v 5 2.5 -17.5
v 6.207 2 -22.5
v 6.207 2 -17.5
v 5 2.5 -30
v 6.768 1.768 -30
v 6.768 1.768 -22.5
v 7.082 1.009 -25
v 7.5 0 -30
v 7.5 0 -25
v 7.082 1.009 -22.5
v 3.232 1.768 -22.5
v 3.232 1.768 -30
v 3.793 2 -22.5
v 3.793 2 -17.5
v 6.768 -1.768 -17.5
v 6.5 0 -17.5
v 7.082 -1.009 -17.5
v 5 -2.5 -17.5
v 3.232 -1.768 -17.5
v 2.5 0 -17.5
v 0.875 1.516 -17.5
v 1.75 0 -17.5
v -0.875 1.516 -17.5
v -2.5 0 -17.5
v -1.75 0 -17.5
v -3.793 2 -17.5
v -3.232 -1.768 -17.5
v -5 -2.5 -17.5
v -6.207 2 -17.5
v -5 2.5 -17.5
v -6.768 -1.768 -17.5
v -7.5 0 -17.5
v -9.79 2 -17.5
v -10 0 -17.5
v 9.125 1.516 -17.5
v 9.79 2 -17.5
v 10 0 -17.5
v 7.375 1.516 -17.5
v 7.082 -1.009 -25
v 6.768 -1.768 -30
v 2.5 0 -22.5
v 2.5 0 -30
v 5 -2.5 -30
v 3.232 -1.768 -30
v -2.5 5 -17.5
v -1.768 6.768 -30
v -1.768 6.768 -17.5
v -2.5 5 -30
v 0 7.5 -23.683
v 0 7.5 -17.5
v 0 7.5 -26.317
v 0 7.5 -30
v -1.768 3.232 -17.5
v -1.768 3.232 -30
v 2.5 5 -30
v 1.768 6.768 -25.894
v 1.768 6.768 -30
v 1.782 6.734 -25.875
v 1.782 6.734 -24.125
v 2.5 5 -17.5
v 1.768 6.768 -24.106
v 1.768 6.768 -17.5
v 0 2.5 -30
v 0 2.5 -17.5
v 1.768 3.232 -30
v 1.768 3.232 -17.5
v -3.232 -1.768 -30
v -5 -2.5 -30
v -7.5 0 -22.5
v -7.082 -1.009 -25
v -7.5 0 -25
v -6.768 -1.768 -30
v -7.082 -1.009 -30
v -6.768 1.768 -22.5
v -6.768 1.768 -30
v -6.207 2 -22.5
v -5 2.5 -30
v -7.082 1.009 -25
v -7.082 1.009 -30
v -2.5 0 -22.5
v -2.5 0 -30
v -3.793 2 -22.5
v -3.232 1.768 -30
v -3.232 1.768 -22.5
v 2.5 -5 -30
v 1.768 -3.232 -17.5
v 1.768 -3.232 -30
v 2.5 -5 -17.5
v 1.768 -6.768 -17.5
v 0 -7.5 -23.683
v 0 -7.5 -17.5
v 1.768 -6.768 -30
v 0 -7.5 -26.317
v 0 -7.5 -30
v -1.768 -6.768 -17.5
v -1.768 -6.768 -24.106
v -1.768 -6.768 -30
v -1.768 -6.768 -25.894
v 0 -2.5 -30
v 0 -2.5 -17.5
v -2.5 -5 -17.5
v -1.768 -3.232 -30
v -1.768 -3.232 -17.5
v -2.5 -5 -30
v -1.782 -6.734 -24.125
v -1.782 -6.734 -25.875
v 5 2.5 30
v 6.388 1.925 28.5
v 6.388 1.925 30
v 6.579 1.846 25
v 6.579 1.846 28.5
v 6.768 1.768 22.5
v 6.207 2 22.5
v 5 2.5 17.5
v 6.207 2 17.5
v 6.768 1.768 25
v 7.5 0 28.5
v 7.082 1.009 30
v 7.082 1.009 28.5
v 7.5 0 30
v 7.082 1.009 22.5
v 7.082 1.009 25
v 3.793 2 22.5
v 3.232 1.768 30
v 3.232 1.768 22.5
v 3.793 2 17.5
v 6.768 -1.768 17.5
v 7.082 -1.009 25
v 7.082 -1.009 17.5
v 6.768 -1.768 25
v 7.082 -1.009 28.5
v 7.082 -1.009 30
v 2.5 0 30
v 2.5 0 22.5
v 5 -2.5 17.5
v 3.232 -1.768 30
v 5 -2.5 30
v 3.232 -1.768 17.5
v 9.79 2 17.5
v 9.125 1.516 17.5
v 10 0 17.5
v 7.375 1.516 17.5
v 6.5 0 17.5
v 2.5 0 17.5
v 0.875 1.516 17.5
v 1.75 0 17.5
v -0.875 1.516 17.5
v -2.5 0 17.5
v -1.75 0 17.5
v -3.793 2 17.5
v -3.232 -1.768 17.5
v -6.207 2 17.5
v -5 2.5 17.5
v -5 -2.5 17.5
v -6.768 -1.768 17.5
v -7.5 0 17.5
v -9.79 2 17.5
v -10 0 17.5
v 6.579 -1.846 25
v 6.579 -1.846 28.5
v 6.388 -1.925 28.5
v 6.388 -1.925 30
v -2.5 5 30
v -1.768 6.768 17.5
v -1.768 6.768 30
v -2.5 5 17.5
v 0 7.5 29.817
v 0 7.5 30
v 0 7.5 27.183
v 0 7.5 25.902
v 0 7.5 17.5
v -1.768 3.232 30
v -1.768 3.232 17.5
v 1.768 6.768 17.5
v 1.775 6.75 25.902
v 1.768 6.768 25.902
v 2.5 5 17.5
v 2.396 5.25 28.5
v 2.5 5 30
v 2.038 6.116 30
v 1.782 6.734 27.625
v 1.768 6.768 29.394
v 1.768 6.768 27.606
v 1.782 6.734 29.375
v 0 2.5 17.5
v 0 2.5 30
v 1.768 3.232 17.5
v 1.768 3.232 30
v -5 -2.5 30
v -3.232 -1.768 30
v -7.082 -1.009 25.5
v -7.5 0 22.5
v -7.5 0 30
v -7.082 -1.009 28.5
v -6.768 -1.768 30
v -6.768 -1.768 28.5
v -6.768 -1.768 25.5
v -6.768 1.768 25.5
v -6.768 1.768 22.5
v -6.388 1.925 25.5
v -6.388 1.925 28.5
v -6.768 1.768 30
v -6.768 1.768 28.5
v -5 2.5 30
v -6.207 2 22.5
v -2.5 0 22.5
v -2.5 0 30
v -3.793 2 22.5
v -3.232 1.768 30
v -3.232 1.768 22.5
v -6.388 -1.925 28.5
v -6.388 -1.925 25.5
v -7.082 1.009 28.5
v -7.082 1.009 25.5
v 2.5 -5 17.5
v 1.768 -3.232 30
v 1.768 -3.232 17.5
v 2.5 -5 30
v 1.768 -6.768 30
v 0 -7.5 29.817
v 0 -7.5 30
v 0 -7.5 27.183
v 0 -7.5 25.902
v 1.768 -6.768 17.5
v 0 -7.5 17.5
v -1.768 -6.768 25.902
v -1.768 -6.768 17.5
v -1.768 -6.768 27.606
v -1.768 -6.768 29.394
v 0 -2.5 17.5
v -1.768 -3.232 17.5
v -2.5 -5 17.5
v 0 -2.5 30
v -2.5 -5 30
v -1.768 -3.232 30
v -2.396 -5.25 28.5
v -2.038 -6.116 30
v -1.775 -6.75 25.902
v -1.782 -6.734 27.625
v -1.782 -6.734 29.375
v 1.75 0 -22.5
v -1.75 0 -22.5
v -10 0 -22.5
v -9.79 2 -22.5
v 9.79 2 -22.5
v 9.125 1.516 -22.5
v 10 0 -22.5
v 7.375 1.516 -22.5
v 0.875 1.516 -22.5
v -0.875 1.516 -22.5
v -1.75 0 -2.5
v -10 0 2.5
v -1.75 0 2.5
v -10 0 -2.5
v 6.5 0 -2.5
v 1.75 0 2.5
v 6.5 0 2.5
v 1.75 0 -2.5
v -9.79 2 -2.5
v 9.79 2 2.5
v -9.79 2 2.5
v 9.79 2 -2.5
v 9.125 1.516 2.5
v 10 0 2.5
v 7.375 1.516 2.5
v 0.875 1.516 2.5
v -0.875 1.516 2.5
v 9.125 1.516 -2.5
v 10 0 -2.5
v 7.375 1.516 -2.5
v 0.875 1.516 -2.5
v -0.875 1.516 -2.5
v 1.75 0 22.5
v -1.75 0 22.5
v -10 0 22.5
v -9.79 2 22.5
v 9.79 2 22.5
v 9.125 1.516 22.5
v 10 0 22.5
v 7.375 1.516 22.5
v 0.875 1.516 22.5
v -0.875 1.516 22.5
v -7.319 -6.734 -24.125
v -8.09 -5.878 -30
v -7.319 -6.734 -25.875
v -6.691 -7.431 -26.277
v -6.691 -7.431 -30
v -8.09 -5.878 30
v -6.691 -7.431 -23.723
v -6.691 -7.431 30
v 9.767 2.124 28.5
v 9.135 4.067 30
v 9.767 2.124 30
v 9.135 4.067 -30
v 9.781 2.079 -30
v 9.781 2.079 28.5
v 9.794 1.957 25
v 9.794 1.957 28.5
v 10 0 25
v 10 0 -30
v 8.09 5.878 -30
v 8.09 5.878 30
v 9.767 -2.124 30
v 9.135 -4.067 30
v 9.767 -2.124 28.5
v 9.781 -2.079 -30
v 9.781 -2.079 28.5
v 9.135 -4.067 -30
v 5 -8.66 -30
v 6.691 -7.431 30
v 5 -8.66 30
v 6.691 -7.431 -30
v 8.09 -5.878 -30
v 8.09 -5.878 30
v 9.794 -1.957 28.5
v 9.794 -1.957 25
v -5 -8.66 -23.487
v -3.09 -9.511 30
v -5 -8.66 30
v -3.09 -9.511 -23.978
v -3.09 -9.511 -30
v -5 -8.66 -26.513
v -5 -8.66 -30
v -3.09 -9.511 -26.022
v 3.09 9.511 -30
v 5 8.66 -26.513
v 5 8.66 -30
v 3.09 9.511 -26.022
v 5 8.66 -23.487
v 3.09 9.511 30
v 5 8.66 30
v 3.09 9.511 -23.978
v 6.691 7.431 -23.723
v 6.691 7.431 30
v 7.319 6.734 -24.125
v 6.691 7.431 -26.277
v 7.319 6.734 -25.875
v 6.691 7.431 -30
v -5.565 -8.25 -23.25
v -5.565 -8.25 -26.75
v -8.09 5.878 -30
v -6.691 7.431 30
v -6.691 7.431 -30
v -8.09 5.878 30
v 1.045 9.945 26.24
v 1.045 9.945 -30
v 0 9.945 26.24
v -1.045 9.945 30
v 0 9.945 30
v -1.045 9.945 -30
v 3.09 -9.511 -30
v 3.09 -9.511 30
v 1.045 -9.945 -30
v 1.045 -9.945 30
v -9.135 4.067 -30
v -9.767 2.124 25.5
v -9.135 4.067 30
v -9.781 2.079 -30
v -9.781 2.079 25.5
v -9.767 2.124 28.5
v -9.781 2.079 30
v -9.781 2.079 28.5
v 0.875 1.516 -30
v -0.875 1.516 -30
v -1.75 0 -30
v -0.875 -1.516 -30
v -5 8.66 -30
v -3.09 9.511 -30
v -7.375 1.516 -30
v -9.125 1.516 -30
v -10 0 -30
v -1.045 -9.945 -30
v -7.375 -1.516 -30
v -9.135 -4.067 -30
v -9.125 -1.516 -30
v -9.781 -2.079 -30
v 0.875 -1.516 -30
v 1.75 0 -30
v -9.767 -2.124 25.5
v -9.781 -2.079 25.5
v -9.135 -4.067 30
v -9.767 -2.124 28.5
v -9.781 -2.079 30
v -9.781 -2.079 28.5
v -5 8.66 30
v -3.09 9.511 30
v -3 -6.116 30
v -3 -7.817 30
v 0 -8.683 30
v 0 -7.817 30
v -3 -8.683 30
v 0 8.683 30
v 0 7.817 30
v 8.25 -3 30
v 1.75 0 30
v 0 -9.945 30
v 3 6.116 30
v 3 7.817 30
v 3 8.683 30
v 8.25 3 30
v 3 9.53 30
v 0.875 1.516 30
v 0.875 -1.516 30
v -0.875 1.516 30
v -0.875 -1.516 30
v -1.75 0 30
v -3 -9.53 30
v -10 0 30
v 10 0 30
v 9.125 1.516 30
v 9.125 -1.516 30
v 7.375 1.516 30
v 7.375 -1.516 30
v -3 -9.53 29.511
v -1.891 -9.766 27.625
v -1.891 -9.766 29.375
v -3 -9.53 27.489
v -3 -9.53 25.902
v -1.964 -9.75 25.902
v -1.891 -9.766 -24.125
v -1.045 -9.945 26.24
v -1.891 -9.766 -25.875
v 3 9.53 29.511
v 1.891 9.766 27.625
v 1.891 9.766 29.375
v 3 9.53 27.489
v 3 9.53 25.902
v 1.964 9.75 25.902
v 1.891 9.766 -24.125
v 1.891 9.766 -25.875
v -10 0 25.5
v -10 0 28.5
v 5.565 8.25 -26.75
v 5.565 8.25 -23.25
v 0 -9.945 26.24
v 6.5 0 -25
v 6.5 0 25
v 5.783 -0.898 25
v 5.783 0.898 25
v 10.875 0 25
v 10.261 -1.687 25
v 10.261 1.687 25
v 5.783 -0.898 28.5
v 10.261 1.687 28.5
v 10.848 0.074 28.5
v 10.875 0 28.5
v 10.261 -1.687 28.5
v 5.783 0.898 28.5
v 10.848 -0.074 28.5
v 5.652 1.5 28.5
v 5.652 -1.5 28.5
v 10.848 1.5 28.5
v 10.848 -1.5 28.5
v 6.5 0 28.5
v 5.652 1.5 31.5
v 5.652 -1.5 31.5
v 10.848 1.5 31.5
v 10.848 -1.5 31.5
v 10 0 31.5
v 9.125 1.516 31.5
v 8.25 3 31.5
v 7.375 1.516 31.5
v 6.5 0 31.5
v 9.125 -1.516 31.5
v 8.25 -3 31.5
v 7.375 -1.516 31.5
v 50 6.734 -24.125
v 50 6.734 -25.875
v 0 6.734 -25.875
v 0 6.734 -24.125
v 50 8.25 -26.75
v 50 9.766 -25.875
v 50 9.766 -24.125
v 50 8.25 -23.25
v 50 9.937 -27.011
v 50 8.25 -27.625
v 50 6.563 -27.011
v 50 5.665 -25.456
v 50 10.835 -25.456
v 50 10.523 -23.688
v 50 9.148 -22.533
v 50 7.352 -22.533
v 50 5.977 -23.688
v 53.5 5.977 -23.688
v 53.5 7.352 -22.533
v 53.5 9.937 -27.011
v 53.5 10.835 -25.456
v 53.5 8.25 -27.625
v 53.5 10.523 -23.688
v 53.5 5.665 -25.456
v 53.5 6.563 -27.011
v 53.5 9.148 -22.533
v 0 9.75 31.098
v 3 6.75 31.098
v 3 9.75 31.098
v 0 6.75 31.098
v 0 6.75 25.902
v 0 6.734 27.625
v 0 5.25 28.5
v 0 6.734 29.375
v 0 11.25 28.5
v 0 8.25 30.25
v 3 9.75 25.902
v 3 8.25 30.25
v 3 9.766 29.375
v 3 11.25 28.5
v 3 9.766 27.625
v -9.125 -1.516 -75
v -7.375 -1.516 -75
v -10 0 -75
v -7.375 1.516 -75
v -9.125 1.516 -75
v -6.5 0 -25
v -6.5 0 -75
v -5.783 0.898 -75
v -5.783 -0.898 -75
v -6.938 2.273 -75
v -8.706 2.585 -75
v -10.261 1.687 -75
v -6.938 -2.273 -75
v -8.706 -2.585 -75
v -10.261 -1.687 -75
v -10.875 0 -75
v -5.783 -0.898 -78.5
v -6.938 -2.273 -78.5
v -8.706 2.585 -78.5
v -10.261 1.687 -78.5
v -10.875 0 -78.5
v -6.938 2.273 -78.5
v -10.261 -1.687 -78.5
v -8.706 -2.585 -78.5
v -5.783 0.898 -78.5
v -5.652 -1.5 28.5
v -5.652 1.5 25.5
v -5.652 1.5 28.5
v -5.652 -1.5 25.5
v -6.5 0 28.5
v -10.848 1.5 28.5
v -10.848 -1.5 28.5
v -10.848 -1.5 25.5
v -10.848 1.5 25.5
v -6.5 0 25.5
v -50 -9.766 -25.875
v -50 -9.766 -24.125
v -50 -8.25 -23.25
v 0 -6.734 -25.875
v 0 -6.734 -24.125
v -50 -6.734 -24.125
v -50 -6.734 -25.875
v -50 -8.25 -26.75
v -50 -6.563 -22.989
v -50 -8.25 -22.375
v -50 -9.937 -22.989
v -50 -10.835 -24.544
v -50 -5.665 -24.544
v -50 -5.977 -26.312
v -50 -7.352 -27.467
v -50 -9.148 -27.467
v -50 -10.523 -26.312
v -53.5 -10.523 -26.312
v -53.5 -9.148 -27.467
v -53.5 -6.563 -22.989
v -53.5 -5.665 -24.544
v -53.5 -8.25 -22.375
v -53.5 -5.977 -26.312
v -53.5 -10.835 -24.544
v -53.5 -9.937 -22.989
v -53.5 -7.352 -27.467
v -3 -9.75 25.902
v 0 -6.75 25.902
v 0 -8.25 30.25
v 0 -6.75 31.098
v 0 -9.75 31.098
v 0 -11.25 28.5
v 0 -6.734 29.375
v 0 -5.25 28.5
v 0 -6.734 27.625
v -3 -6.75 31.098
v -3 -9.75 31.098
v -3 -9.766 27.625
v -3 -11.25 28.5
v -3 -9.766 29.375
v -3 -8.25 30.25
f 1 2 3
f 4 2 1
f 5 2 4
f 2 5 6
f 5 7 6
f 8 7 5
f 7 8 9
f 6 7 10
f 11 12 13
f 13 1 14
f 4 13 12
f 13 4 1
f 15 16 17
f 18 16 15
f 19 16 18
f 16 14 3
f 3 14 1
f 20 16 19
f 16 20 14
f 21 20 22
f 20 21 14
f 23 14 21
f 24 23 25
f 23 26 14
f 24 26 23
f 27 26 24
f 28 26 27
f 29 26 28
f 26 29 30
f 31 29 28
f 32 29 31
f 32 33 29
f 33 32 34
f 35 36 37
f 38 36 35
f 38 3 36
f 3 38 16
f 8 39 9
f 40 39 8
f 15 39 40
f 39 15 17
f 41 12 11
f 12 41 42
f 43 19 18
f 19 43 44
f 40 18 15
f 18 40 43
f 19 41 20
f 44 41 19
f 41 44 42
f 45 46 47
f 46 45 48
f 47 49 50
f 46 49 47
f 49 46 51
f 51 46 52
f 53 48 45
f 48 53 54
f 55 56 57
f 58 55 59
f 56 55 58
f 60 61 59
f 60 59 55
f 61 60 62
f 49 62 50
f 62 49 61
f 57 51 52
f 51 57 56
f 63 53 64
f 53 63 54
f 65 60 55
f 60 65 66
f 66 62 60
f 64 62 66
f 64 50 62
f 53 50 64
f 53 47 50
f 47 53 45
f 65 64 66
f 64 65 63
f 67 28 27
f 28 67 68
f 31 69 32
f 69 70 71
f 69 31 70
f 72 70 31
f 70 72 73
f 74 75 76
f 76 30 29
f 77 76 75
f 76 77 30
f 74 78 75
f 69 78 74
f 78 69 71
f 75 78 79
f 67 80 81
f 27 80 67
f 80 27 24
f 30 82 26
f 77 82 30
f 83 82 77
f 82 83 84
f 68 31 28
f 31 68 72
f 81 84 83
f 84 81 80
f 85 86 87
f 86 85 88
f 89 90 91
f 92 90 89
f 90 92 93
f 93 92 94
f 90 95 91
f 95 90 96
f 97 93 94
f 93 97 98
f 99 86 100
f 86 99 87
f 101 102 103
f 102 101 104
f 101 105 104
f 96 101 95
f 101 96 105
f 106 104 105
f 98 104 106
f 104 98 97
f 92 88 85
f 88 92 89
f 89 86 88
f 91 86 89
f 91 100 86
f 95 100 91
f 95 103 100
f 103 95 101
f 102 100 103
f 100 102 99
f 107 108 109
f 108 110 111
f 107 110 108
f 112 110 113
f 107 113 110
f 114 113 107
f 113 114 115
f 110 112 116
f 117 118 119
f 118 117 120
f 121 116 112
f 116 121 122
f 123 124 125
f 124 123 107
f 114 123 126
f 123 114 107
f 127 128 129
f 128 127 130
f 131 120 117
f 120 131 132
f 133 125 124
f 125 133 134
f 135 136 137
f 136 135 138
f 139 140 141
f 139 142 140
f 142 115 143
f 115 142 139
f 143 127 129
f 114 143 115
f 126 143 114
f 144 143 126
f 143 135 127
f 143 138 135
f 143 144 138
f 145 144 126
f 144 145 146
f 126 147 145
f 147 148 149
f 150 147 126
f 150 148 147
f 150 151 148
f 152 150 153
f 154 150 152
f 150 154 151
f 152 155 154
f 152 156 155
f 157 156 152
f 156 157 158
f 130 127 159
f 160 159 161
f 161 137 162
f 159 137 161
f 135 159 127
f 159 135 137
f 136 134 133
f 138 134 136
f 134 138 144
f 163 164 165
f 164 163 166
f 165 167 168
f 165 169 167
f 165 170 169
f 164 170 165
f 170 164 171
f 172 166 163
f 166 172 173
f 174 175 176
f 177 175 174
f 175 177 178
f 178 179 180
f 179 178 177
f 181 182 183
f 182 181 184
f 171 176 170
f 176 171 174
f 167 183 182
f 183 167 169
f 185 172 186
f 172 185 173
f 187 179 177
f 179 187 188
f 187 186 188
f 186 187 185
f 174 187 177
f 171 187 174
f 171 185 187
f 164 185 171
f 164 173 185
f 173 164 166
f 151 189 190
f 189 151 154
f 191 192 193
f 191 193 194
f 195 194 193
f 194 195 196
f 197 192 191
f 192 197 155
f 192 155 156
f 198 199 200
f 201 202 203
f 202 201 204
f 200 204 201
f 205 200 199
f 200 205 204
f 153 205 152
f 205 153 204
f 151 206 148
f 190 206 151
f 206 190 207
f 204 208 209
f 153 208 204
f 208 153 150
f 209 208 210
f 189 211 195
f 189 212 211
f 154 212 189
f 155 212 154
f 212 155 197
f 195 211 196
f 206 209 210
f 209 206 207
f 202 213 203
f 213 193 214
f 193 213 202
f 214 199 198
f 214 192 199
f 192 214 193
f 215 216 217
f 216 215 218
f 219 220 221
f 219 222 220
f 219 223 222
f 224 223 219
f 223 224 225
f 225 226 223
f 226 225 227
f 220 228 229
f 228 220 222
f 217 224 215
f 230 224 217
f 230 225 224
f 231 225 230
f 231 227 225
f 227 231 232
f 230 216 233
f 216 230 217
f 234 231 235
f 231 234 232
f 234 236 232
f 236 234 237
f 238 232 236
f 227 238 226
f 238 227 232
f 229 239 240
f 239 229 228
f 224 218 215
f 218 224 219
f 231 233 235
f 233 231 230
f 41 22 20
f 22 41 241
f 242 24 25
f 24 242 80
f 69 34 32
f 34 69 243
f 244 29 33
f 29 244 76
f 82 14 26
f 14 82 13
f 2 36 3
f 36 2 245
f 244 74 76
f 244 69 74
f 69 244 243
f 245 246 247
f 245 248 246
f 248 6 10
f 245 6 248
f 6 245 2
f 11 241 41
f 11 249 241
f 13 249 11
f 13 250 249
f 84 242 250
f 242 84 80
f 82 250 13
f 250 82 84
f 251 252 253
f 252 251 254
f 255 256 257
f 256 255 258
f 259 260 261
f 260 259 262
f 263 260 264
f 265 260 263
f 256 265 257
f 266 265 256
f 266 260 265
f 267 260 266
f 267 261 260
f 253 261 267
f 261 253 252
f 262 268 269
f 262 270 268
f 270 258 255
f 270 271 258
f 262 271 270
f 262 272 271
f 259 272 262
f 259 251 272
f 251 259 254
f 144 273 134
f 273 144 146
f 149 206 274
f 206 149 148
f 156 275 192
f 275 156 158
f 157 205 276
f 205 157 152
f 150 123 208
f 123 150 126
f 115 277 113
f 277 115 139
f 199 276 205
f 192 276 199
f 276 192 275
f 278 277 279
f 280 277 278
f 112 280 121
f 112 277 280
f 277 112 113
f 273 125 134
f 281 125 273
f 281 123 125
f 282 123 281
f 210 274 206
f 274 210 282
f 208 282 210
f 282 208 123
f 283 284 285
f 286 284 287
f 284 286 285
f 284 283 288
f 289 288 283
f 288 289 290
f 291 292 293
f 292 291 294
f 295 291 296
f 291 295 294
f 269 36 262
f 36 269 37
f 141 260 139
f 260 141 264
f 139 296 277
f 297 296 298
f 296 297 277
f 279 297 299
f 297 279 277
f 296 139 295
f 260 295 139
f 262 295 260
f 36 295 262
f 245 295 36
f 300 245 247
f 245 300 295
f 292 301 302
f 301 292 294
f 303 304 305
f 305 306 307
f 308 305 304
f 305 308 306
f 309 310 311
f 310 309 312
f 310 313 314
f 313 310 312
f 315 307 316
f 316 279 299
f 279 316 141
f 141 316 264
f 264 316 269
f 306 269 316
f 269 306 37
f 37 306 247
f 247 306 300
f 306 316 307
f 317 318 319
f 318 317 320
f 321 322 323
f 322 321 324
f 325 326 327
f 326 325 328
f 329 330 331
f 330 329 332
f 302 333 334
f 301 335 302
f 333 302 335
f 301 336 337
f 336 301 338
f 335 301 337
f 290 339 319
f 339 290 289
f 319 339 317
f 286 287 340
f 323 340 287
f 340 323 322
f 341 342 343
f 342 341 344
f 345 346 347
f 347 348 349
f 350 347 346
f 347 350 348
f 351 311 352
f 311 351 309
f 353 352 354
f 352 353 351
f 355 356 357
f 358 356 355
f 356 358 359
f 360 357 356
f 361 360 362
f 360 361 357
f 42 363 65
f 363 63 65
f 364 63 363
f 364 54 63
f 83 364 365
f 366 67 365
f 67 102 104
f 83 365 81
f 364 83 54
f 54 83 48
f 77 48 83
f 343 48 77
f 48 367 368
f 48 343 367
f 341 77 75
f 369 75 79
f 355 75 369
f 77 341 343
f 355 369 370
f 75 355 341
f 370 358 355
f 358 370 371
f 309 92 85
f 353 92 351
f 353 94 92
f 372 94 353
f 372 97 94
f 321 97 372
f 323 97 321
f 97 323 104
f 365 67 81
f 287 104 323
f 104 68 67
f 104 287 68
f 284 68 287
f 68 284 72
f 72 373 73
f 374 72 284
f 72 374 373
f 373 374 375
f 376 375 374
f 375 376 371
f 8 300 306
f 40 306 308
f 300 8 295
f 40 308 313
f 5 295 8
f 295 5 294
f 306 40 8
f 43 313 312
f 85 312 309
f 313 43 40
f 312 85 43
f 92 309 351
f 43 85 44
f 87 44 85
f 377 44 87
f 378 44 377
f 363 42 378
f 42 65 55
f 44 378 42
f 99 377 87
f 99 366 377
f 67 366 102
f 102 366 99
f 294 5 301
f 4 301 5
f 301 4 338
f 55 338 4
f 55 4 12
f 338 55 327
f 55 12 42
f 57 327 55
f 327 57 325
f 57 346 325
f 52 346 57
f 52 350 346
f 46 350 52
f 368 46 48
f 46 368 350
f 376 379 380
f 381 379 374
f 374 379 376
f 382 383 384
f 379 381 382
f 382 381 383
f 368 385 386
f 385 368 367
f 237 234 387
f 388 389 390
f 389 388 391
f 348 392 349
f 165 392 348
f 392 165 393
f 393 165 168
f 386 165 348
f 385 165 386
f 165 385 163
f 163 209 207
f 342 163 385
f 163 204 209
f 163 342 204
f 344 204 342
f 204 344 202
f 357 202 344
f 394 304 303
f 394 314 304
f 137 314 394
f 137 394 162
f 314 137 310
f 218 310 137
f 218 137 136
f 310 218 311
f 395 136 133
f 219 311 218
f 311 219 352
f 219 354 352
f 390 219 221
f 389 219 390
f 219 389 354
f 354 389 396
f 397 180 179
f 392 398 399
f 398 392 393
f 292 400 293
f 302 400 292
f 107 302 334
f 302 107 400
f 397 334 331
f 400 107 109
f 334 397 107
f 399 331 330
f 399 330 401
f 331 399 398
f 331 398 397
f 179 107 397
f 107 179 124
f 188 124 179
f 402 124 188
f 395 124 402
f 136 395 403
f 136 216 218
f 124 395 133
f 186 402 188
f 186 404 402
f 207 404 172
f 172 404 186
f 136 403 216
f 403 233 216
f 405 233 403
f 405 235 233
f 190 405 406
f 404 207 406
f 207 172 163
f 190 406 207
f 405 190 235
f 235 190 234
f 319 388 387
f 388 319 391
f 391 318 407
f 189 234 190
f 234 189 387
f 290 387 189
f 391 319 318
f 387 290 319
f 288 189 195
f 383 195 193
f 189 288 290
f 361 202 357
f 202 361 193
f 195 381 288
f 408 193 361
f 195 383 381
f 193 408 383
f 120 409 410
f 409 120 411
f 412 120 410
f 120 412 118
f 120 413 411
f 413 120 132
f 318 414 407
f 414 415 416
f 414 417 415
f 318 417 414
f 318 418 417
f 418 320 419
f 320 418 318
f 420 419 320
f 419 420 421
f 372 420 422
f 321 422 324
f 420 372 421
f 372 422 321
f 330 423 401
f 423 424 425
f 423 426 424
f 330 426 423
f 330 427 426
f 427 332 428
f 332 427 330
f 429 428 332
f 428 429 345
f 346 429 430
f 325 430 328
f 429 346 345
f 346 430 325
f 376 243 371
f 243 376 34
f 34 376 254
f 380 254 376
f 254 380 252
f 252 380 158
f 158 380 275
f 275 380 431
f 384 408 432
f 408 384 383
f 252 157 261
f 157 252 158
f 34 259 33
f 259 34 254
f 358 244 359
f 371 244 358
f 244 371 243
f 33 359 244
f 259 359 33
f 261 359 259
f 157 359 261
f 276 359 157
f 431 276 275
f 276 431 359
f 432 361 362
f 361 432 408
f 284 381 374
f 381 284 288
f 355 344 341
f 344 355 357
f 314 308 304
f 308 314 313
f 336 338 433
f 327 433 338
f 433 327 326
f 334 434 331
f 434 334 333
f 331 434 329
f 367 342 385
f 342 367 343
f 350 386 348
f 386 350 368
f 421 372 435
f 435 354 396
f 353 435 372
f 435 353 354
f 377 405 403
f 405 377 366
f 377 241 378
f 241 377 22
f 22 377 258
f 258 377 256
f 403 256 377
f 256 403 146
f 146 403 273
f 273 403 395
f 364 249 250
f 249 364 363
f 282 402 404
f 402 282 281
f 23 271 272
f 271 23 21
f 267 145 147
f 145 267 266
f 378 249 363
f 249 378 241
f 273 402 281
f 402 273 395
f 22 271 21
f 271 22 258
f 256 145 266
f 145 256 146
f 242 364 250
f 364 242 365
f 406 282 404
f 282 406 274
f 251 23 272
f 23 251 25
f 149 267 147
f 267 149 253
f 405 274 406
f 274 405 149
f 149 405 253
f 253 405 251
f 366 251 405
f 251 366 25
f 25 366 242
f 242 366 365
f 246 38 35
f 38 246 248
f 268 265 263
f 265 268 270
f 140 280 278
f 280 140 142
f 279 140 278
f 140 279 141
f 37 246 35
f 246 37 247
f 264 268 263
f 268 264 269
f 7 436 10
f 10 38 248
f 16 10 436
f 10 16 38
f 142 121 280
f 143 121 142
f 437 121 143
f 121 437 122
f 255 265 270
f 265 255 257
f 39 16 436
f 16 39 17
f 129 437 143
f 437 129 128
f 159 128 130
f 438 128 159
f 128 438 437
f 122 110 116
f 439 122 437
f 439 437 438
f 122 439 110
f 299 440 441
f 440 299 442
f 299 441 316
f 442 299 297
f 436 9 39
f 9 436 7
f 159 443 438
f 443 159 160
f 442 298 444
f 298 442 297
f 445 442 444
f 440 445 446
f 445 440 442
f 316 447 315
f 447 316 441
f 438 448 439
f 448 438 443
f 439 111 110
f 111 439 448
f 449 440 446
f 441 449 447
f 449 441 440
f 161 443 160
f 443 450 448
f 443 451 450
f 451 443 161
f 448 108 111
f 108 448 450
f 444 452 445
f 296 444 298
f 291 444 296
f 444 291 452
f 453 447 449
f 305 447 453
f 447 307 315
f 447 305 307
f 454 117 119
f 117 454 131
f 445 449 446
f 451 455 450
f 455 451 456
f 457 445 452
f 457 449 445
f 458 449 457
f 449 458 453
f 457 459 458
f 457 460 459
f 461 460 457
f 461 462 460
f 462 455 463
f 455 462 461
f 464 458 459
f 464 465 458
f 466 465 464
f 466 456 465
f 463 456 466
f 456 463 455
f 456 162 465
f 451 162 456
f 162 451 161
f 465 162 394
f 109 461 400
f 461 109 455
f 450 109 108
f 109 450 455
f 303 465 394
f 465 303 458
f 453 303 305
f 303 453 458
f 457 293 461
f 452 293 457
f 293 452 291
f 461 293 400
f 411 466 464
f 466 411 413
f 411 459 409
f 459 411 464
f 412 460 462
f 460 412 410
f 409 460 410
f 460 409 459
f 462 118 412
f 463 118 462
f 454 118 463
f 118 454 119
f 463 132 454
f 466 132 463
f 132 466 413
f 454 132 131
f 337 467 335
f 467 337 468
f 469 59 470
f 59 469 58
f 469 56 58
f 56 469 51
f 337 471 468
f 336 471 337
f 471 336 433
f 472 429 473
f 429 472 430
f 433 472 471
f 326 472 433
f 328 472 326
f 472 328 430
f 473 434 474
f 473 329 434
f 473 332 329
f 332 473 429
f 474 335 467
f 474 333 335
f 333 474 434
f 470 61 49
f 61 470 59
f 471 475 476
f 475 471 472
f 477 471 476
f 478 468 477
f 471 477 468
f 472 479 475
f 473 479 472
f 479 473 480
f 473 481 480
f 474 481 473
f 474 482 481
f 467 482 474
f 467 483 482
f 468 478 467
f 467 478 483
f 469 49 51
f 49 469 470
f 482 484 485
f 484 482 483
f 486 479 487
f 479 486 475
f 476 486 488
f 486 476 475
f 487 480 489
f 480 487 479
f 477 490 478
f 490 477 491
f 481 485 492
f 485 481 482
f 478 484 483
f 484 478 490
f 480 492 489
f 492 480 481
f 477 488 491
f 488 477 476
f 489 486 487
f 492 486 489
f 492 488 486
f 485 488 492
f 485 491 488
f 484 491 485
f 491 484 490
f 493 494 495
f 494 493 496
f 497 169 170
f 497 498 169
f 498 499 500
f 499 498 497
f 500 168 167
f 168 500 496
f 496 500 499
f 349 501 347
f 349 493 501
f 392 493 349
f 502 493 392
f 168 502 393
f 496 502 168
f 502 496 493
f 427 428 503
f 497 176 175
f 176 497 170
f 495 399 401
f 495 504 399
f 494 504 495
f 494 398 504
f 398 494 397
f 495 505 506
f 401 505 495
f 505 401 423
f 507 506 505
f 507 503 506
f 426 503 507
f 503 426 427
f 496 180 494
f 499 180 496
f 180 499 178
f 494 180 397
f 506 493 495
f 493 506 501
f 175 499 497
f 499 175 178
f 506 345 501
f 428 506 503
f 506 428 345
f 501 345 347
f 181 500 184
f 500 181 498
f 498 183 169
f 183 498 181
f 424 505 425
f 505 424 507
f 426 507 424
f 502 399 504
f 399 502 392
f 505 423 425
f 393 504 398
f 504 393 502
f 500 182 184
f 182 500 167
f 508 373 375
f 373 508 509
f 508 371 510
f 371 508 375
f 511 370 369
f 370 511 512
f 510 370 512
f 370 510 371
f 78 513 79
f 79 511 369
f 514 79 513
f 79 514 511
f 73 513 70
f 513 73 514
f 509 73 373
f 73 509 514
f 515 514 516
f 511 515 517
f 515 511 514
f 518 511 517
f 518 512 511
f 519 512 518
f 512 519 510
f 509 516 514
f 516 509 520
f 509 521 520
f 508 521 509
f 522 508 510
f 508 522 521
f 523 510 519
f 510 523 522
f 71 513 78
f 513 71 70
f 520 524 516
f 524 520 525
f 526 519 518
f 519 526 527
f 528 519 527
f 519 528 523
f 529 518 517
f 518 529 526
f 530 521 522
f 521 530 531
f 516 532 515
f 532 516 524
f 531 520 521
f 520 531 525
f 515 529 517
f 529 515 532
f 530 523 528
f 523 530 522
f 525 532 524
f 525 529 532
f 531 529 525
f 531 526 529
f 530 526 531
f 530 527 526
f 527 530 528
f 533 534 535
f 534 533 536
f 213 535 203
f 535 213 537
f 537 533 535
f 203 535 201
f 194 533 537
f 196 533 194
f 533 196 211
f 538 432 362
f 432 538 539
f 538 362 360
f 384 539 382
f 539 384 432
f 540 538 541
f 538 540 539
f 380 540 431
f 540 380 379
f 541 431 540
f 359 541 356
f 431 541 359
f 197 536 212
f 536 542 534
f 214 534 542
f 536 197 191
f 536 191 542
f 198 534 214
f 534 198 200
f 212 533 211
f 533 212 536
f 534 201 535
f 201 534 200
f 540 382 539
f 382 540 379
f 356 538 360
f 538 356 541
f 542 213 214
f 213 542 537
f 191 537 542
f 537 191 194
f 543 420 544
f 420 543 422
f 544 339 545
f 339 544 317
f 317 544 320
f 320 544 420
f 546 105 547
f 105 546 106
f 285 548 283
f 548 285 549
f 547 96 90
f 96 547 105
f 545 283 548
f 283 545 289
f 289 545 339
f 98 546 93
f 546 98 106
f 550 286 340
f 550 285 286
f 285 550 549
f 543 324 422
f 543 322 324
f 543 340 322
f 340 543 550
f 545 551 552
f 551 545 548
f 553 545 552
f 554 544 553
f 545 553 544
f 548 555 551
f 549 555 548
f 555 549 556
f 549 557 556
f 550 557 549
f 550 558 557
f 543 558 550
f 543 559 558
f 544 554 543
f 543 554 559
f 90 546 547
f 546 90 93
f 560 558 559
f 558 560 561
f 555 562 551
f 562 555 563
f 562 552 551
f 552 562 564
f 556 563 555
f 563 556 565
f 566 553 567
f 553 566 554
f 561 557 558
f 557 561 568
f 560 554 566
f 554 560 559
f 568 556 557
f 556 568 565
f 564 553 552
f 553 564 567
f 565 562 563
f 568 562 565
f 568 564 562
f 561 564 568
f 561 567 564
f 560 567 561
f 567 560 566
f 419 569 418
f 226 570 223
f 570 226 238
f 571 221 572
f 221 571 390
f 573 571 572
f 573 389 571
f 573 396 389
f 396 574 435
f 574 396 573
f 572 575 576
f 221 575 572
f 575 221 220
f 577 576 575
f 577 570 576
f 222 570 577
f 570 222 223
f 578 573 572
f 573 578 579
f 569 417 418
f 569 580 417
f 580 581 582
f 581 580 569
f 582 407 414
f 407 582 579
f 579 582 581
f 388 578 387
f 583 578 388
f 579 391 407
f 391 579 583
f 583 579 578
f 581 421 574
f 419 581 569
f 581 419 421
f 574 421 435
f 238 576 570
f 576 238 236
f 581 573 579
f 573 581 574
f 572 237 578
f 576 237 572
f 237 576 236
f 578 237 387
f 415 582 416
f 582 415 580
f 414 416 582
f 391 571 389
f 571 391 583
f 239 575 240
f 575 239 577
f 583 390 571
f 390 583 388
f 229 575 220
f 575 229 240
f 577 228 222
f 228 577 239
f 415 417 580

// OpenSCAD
// Parameters for components
cylinder_diameter = 20;
cylinder_length = 60; // Adjusted to match the original length
hole_diameter = 3.5;  // Adjusted for a more accurate cavity
threaded_hole_diameter = 5;
groove_depth = 2;     // Simplified depth for the grooves
groove_width = 2.5;   // Adjusted width for the grooves
bolt_diameter = 3.5;  // Reduced diameter to match the original bolts
bolt_length = 50;     // Shortened bolt length
nut_diameter = 6; 
nut_height = 3;       // Adjusted height for compact nuts

// Coupling Cylinder Function
module coupling_cylinder() {
    // Main body
    difference() {
        cylinder(r=cylinder_diameter / 2, h=cylinder_length, center=true);
        
        // Central hollow cavity
        translate([0, 0, -cylinder_length / 2])
            cylinder(r=hole_diameter / 2, h=cylinder_length * 1.5, center=false);

        // Threaded holes near each end
        for (i=[-1, 1]) {
            for (theta = [0, 90, 180, 270]) {
                translate([
                    (cylinder_diameter / 2 - threaded_hole_diameter) * cos(theta),  
                    (cylinder_diameter / 2 - threaded_hole_diameter) * sin(theta),
                    i * (cylinder_length / 2 - 5)
                ])
                rotate([0, 0, theta])
                    cylinder(r=threaded_hole_diameter / 2, h=15, center=true); // Reduced height for threaded holes
            }
        }

        // Functional grooves
        for (offset = [-1, 0, 1]) { // Reduced number of grooves to match the original
            translate([0, 0, offset * 20])
                rotate([90, 0, 0])
                    translate([-cylinder_diameter / 2, -groove_width, -groove_depth])
                        cube([cylinder_diameter, groove_width * 2, groove_depth], center=false);
        }
    }
}

// Bolt Function
module bolt() {
    union() {
        // Bolt shaft
        cylinder(r=bolt_diameter / 2, h=bolt_length, center=false);
        
        // Bolt head
        translate([0, 0, bolt_length])
            cylinder(r=bolt_diameter * 1.5 / 2, h=bolt_diameter * 1, center=false); // Adjusted head for compact design
    }
}

// Nut Function
module nut() {
    difference() {
        // Outer hexagonal shape
        rotate([0, 0, 30])
            linear_extrude(height=nut_height)
                polygon(points=[
                    [nut_diameter / 2, 0],
                    [nut_diameter / 4, nut_diameter * sqrt(3) / 4],
                    [-nut_diameter / 4, nut_diameter * sqrt(3) / 4],
                    [-nut_diameter / 2, 0],
                    [-nut_diameter / 4, -nut_diameter * sqrt(3) / 4],
                    [nut_diameter / 4, -nut_diameter * sqrt(3) / 4]
                ]);

        // Inner circular hole
        translate([0, 0, -1])
            cylinder(r=bolt_diameter / 2, h=nut_height + 2, center=false);
    }
}

// Assembly
module assembly() {
    // Layer 1: Coupling cylinder
    coupling_cylinder();

    // Layer 2: Bolts and nuts
    for (theta = [0, 90, 180, 270]) {
        // Bolts
        translate([
            (cylinder_diameter / 2 - bolt_diameter / 2) * cos(theta),  
            (cylinder_diameter / 2 - bolt_diameter / 2) * sin(theta),
            -bolt_length / 2
        ])
        rotate([0, theta, 0])
            bolt();

        // Nuts
        translate([
            (cylinder_diameter / 2 - bolt_diameter / 2) * cos(theta),  
            (cylinder_diameter / 2 - bolt_diameter / 2) * sin(theta),
            cylinder_length / 2 - nut_height / 2 // Positioned closer to the coupling cylinder
        ])
        rotate([0, theta, 0])
            nut();
    }
}

// Render the full assembly
assembly();
